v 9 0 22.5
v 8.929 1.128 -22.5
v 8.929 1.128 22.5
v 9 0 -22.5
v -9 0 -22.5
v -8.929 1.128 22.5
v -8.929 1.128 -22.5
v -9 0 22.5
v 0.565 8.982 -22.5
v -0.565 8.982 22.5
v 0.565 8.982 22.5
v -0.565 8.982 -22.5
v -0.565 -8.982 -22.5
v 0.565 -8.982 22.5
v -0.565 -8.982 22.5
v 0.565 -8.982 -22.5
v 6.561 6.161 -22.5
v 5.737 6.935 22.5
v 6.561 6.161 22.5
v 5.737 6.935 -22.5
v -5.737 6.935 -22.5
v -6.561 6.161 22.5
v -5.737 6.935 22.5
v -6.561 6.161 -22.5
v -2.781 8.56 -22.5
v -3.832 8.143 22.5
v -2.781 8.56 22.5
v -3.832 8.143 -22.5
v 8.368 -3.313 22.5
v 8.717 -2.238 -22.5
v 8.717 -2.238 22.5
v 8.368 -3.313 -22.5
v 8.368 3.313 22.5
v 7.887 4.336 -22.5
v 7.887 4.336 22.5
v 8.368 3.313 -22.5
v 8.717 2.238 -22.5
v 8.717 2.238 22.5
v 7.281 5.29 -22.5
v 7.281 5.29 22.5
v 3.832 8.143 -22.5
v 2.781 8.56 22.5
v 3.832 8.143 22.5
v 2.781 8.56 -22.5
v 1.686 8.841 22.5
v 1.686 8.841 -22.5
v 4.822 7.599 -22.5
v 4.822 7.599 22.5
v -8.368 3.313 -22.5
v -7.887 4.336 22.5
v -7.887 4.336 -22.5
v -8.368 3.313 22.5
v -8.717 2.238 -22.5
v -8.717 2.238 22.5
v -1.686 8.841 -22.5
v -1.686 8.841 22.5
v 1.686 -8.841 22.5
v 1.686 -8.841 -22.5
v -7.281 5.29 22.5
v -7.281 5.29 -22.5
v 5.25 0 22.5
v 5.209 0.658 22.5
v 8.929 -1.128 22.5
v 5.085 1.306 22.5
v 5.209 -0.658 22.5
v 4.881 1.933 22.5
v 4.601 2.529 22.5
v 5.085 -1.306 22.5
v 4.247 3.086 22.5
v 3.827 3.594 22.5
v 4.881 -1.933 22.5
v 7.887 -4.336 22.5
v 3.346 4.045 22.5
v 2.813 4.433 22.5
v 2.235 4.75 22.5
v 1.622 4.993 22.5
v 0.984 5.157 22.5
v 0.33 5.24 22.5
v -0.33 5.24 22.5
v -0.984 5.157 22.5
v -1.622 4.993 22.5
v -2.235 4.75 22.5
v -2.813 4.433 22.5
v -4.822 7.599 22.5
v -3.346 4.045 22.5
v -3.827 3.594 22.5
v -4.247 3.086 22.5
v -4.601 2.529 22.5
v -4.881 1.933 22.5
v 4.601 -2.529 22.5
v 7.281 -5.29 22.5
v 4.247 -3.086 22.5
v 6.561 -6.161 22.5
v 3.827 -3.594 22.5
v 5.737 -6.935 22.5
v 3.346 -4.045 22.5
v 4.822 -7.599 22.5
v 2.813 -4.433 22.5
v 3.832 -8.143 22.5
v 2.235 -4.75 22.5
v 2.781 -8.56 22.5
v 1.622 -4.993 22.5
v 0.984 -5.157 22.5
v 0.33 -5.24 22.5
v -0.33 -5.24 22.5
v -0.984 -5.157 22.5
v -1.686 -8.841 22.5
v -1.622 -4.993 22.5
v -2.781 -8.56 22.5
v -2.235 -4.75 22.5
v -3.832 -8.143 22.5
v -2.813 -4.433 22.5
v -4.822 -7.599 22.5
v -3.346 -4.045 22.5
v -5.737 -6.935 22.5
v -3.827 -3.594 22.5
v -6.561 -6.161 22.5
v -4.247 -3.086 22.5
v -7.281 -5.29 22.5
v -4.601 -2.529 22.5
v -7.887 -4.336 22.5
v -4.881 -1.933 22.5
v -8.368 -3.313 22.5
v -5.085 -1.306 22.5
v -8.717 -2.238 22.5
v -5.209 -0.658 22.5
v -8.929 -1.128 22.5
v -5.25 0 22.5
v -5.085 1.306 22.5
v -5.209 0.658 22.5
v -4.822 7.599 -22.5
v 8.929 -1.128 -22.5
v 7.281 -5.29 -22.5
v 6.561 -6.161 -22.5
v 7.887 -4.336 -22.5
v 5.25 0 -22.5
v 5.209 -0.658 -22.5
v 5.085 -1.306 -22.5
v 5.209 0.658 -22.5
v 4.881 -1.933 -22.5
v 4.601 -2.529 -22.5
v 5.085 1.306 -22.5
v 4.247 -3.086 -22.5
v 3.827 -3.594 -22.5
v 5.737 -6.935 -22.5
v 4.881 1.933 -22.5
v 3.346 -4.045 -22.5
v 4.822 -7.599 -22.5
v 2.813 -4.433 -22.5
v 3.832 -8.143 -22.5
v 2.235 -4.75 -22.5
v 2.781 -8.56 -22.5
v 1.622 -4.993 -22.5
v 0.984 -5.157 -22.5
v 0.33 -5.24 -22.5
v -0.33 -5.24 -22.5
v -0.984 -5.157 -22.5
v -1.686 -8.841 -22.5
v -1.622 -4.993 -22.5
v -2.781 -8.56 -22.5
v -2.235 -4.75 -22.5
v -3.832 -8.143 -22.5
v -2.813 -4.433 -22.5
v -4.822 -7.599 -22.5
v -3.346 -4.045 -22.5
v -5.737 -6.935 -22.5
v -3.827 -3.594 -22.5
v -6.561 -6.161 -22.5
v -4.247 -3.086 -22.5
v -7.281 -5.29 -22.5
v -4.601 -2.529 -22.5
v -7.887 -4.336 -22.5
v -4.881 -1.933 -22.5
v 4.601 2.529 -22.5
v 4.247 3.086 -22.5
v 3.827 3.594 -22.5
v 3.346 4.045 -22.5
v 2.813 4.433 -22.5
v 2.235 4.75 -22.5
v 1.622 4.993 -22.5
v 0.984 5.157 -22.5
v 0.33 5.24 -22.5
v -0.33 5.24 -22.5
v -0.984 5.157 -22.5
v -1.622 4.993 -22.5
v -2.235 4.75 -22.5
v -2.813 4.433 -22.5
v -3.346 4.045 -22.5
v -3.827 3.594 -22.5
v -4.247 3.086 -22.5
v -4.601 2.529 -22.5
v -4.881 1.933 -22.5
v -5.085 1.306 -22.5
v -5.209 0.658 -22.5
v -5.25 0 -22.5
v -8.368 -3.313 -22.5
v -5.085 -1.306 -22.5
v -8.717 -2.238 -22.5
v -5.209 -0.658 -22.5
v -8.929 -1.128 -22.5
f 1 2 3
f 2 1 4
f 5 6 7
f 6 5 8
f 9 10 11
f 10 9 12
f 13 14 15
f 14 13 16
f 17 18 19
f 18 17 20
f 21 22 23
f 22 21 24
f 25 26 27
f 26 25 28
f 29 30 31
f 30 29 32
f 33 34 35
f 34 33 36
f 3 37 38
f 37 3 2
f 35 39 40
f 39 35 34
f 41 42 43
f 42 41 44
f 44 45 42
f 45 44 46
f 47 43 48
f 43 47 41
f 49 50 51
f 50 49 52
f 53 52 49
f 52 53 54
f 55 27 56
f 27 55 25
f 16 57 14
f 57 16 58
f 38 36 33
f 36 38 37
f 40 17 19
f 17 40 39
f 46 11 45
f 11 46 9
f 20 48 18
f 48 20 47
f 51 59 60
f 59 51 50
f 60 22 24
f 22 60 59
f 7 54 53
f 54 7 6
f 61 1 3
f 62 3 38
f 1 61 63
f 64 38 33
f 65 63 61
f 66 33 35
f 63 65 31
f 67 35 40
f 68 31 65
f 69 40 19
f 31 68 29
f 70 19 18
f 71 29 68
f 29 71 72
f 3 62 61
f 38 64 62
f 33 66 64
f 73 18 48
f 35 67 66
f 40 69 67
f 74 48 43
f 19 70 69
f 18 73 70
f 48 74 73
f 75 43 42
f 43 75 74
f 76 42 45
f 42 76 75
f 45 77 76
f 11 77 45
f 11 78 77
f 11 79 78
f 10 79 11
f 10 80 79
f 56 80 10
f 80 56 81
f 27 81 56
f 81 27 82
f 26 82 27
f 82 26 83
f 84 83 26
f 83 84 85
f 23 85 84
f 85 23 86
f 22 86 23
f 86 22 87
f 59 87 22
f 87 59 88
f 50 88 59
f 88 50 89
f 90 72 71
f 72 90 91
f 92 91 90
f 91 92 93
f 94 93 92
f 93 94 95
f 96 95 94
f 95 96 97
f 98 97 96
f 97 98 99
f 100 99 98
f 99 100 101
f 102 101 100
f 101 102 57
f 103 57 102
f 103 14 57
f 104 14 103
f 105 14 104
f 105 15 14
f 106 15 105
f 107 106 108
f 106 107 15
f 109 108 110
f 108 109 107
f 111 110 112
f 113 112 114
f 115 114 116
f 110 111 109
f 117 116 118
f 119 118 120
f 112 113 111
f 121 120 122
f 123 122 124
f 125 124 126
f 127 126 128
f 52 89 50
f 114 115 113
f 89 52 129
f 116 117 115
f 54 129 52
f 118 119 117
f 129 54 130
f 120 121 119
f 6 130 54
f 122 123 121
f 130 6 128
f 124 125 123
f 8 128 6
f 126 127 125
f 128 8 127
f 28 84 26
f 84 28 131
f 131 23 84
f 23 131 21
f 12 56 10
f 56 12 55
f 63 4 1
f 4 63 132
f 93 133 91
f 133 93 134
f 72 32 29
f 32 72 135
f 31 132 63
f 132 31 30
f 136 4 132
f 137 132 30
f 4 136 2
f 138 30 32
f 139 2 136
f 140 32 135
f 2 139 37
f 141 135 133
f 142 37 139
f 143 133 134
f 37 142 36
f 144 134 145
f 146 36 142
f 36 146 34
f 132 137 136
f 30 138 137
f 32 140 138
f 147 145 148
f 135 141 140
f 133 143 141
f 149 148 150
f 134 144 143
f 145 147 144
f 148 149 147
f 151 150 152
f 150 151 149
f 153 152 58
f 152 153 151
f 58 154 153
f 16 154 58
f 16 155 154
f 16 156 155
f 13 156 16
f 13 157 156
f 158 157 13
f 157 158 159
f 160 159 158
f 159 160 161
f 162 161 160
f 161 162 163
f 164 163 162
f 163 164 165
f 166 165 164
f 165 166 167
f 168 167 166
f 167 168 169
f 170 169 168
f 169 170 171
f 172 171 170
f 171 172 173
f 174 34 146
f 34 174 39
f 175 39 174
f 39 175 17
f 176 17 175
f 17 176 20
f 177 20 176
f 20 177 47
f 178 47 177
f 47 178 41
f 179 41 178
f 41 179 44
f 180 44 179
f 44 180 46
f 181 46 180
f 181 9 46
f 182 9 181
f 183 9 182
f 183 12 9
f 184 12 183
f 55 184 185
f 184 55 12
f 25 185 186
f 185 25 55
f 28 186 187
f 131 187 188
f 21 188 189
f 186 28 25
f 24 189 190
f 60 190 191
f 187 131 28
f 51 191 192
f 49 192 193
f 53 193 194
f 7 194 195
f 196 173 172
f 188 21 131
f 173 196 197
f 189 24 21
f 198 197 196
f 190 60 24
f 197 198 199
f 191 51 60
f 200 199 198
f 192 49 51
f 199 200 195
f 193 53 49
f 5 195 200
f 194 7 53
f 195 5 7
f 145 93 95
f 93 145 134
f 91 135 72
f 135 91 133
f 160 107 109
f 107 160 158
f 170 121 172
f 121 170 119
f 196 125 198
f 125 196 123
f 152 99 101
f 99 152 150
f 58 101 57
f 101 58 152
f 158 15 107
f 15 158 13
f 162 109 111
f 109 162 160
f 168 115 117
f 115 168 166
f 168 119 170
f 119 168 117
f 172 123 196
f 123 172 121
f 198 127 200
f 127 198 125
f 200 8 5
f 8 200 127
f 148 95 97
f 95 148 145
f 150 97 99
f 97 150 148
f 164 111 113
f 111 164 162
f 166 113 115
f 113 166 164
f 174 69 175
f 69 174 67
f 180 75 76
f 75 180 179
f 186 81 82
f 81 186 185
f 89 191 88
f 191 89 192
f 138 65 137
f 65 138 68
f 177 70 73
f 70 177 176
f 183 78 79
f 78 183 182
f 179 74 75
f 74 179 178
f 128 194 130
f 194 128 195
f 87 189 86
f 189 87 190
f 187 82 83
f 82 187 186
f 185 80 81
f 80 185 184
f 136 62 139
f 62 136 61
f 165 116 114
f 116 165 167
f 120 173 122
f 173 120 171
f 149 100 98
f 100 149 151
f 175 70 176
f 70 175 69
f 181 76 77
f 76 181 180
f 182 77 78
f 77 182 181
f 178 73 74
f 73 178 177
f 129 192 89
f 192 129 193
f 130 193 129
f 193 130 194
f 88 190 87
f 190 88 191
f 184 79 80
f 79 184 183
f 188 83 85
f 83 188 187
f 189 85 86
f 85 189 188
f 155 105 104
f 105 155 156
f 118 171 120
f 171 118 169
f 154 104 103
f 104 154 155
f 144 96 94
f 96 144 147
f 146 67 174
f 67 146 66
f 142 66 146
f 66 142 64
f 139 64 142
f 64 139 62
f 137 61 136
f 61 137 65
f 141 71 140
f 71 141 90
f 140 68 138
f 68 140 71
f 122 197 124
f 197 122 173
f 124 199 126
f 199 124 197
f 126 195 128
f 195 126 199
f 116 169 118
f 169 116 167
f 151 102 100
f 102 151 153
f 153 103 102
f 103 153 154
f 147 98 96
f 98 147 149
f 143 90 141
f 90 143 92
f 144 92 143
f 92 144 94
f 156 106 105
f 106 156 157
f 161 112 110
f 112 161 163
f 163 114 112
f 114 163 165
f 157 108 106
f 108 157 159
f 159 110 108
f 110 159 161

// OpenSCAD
$fn = 50;


difference() {
	union() {
		translate(v = [0, 0, -22.5000000000]) {
			cylinder(h = 45, r = 9.0000000000);
		}
	}
	union() {
		translate(v = [0, 0, -100.0000000000]) {
			cylinder(h = 200, r = 5.2500000000);
		}
	}
}
